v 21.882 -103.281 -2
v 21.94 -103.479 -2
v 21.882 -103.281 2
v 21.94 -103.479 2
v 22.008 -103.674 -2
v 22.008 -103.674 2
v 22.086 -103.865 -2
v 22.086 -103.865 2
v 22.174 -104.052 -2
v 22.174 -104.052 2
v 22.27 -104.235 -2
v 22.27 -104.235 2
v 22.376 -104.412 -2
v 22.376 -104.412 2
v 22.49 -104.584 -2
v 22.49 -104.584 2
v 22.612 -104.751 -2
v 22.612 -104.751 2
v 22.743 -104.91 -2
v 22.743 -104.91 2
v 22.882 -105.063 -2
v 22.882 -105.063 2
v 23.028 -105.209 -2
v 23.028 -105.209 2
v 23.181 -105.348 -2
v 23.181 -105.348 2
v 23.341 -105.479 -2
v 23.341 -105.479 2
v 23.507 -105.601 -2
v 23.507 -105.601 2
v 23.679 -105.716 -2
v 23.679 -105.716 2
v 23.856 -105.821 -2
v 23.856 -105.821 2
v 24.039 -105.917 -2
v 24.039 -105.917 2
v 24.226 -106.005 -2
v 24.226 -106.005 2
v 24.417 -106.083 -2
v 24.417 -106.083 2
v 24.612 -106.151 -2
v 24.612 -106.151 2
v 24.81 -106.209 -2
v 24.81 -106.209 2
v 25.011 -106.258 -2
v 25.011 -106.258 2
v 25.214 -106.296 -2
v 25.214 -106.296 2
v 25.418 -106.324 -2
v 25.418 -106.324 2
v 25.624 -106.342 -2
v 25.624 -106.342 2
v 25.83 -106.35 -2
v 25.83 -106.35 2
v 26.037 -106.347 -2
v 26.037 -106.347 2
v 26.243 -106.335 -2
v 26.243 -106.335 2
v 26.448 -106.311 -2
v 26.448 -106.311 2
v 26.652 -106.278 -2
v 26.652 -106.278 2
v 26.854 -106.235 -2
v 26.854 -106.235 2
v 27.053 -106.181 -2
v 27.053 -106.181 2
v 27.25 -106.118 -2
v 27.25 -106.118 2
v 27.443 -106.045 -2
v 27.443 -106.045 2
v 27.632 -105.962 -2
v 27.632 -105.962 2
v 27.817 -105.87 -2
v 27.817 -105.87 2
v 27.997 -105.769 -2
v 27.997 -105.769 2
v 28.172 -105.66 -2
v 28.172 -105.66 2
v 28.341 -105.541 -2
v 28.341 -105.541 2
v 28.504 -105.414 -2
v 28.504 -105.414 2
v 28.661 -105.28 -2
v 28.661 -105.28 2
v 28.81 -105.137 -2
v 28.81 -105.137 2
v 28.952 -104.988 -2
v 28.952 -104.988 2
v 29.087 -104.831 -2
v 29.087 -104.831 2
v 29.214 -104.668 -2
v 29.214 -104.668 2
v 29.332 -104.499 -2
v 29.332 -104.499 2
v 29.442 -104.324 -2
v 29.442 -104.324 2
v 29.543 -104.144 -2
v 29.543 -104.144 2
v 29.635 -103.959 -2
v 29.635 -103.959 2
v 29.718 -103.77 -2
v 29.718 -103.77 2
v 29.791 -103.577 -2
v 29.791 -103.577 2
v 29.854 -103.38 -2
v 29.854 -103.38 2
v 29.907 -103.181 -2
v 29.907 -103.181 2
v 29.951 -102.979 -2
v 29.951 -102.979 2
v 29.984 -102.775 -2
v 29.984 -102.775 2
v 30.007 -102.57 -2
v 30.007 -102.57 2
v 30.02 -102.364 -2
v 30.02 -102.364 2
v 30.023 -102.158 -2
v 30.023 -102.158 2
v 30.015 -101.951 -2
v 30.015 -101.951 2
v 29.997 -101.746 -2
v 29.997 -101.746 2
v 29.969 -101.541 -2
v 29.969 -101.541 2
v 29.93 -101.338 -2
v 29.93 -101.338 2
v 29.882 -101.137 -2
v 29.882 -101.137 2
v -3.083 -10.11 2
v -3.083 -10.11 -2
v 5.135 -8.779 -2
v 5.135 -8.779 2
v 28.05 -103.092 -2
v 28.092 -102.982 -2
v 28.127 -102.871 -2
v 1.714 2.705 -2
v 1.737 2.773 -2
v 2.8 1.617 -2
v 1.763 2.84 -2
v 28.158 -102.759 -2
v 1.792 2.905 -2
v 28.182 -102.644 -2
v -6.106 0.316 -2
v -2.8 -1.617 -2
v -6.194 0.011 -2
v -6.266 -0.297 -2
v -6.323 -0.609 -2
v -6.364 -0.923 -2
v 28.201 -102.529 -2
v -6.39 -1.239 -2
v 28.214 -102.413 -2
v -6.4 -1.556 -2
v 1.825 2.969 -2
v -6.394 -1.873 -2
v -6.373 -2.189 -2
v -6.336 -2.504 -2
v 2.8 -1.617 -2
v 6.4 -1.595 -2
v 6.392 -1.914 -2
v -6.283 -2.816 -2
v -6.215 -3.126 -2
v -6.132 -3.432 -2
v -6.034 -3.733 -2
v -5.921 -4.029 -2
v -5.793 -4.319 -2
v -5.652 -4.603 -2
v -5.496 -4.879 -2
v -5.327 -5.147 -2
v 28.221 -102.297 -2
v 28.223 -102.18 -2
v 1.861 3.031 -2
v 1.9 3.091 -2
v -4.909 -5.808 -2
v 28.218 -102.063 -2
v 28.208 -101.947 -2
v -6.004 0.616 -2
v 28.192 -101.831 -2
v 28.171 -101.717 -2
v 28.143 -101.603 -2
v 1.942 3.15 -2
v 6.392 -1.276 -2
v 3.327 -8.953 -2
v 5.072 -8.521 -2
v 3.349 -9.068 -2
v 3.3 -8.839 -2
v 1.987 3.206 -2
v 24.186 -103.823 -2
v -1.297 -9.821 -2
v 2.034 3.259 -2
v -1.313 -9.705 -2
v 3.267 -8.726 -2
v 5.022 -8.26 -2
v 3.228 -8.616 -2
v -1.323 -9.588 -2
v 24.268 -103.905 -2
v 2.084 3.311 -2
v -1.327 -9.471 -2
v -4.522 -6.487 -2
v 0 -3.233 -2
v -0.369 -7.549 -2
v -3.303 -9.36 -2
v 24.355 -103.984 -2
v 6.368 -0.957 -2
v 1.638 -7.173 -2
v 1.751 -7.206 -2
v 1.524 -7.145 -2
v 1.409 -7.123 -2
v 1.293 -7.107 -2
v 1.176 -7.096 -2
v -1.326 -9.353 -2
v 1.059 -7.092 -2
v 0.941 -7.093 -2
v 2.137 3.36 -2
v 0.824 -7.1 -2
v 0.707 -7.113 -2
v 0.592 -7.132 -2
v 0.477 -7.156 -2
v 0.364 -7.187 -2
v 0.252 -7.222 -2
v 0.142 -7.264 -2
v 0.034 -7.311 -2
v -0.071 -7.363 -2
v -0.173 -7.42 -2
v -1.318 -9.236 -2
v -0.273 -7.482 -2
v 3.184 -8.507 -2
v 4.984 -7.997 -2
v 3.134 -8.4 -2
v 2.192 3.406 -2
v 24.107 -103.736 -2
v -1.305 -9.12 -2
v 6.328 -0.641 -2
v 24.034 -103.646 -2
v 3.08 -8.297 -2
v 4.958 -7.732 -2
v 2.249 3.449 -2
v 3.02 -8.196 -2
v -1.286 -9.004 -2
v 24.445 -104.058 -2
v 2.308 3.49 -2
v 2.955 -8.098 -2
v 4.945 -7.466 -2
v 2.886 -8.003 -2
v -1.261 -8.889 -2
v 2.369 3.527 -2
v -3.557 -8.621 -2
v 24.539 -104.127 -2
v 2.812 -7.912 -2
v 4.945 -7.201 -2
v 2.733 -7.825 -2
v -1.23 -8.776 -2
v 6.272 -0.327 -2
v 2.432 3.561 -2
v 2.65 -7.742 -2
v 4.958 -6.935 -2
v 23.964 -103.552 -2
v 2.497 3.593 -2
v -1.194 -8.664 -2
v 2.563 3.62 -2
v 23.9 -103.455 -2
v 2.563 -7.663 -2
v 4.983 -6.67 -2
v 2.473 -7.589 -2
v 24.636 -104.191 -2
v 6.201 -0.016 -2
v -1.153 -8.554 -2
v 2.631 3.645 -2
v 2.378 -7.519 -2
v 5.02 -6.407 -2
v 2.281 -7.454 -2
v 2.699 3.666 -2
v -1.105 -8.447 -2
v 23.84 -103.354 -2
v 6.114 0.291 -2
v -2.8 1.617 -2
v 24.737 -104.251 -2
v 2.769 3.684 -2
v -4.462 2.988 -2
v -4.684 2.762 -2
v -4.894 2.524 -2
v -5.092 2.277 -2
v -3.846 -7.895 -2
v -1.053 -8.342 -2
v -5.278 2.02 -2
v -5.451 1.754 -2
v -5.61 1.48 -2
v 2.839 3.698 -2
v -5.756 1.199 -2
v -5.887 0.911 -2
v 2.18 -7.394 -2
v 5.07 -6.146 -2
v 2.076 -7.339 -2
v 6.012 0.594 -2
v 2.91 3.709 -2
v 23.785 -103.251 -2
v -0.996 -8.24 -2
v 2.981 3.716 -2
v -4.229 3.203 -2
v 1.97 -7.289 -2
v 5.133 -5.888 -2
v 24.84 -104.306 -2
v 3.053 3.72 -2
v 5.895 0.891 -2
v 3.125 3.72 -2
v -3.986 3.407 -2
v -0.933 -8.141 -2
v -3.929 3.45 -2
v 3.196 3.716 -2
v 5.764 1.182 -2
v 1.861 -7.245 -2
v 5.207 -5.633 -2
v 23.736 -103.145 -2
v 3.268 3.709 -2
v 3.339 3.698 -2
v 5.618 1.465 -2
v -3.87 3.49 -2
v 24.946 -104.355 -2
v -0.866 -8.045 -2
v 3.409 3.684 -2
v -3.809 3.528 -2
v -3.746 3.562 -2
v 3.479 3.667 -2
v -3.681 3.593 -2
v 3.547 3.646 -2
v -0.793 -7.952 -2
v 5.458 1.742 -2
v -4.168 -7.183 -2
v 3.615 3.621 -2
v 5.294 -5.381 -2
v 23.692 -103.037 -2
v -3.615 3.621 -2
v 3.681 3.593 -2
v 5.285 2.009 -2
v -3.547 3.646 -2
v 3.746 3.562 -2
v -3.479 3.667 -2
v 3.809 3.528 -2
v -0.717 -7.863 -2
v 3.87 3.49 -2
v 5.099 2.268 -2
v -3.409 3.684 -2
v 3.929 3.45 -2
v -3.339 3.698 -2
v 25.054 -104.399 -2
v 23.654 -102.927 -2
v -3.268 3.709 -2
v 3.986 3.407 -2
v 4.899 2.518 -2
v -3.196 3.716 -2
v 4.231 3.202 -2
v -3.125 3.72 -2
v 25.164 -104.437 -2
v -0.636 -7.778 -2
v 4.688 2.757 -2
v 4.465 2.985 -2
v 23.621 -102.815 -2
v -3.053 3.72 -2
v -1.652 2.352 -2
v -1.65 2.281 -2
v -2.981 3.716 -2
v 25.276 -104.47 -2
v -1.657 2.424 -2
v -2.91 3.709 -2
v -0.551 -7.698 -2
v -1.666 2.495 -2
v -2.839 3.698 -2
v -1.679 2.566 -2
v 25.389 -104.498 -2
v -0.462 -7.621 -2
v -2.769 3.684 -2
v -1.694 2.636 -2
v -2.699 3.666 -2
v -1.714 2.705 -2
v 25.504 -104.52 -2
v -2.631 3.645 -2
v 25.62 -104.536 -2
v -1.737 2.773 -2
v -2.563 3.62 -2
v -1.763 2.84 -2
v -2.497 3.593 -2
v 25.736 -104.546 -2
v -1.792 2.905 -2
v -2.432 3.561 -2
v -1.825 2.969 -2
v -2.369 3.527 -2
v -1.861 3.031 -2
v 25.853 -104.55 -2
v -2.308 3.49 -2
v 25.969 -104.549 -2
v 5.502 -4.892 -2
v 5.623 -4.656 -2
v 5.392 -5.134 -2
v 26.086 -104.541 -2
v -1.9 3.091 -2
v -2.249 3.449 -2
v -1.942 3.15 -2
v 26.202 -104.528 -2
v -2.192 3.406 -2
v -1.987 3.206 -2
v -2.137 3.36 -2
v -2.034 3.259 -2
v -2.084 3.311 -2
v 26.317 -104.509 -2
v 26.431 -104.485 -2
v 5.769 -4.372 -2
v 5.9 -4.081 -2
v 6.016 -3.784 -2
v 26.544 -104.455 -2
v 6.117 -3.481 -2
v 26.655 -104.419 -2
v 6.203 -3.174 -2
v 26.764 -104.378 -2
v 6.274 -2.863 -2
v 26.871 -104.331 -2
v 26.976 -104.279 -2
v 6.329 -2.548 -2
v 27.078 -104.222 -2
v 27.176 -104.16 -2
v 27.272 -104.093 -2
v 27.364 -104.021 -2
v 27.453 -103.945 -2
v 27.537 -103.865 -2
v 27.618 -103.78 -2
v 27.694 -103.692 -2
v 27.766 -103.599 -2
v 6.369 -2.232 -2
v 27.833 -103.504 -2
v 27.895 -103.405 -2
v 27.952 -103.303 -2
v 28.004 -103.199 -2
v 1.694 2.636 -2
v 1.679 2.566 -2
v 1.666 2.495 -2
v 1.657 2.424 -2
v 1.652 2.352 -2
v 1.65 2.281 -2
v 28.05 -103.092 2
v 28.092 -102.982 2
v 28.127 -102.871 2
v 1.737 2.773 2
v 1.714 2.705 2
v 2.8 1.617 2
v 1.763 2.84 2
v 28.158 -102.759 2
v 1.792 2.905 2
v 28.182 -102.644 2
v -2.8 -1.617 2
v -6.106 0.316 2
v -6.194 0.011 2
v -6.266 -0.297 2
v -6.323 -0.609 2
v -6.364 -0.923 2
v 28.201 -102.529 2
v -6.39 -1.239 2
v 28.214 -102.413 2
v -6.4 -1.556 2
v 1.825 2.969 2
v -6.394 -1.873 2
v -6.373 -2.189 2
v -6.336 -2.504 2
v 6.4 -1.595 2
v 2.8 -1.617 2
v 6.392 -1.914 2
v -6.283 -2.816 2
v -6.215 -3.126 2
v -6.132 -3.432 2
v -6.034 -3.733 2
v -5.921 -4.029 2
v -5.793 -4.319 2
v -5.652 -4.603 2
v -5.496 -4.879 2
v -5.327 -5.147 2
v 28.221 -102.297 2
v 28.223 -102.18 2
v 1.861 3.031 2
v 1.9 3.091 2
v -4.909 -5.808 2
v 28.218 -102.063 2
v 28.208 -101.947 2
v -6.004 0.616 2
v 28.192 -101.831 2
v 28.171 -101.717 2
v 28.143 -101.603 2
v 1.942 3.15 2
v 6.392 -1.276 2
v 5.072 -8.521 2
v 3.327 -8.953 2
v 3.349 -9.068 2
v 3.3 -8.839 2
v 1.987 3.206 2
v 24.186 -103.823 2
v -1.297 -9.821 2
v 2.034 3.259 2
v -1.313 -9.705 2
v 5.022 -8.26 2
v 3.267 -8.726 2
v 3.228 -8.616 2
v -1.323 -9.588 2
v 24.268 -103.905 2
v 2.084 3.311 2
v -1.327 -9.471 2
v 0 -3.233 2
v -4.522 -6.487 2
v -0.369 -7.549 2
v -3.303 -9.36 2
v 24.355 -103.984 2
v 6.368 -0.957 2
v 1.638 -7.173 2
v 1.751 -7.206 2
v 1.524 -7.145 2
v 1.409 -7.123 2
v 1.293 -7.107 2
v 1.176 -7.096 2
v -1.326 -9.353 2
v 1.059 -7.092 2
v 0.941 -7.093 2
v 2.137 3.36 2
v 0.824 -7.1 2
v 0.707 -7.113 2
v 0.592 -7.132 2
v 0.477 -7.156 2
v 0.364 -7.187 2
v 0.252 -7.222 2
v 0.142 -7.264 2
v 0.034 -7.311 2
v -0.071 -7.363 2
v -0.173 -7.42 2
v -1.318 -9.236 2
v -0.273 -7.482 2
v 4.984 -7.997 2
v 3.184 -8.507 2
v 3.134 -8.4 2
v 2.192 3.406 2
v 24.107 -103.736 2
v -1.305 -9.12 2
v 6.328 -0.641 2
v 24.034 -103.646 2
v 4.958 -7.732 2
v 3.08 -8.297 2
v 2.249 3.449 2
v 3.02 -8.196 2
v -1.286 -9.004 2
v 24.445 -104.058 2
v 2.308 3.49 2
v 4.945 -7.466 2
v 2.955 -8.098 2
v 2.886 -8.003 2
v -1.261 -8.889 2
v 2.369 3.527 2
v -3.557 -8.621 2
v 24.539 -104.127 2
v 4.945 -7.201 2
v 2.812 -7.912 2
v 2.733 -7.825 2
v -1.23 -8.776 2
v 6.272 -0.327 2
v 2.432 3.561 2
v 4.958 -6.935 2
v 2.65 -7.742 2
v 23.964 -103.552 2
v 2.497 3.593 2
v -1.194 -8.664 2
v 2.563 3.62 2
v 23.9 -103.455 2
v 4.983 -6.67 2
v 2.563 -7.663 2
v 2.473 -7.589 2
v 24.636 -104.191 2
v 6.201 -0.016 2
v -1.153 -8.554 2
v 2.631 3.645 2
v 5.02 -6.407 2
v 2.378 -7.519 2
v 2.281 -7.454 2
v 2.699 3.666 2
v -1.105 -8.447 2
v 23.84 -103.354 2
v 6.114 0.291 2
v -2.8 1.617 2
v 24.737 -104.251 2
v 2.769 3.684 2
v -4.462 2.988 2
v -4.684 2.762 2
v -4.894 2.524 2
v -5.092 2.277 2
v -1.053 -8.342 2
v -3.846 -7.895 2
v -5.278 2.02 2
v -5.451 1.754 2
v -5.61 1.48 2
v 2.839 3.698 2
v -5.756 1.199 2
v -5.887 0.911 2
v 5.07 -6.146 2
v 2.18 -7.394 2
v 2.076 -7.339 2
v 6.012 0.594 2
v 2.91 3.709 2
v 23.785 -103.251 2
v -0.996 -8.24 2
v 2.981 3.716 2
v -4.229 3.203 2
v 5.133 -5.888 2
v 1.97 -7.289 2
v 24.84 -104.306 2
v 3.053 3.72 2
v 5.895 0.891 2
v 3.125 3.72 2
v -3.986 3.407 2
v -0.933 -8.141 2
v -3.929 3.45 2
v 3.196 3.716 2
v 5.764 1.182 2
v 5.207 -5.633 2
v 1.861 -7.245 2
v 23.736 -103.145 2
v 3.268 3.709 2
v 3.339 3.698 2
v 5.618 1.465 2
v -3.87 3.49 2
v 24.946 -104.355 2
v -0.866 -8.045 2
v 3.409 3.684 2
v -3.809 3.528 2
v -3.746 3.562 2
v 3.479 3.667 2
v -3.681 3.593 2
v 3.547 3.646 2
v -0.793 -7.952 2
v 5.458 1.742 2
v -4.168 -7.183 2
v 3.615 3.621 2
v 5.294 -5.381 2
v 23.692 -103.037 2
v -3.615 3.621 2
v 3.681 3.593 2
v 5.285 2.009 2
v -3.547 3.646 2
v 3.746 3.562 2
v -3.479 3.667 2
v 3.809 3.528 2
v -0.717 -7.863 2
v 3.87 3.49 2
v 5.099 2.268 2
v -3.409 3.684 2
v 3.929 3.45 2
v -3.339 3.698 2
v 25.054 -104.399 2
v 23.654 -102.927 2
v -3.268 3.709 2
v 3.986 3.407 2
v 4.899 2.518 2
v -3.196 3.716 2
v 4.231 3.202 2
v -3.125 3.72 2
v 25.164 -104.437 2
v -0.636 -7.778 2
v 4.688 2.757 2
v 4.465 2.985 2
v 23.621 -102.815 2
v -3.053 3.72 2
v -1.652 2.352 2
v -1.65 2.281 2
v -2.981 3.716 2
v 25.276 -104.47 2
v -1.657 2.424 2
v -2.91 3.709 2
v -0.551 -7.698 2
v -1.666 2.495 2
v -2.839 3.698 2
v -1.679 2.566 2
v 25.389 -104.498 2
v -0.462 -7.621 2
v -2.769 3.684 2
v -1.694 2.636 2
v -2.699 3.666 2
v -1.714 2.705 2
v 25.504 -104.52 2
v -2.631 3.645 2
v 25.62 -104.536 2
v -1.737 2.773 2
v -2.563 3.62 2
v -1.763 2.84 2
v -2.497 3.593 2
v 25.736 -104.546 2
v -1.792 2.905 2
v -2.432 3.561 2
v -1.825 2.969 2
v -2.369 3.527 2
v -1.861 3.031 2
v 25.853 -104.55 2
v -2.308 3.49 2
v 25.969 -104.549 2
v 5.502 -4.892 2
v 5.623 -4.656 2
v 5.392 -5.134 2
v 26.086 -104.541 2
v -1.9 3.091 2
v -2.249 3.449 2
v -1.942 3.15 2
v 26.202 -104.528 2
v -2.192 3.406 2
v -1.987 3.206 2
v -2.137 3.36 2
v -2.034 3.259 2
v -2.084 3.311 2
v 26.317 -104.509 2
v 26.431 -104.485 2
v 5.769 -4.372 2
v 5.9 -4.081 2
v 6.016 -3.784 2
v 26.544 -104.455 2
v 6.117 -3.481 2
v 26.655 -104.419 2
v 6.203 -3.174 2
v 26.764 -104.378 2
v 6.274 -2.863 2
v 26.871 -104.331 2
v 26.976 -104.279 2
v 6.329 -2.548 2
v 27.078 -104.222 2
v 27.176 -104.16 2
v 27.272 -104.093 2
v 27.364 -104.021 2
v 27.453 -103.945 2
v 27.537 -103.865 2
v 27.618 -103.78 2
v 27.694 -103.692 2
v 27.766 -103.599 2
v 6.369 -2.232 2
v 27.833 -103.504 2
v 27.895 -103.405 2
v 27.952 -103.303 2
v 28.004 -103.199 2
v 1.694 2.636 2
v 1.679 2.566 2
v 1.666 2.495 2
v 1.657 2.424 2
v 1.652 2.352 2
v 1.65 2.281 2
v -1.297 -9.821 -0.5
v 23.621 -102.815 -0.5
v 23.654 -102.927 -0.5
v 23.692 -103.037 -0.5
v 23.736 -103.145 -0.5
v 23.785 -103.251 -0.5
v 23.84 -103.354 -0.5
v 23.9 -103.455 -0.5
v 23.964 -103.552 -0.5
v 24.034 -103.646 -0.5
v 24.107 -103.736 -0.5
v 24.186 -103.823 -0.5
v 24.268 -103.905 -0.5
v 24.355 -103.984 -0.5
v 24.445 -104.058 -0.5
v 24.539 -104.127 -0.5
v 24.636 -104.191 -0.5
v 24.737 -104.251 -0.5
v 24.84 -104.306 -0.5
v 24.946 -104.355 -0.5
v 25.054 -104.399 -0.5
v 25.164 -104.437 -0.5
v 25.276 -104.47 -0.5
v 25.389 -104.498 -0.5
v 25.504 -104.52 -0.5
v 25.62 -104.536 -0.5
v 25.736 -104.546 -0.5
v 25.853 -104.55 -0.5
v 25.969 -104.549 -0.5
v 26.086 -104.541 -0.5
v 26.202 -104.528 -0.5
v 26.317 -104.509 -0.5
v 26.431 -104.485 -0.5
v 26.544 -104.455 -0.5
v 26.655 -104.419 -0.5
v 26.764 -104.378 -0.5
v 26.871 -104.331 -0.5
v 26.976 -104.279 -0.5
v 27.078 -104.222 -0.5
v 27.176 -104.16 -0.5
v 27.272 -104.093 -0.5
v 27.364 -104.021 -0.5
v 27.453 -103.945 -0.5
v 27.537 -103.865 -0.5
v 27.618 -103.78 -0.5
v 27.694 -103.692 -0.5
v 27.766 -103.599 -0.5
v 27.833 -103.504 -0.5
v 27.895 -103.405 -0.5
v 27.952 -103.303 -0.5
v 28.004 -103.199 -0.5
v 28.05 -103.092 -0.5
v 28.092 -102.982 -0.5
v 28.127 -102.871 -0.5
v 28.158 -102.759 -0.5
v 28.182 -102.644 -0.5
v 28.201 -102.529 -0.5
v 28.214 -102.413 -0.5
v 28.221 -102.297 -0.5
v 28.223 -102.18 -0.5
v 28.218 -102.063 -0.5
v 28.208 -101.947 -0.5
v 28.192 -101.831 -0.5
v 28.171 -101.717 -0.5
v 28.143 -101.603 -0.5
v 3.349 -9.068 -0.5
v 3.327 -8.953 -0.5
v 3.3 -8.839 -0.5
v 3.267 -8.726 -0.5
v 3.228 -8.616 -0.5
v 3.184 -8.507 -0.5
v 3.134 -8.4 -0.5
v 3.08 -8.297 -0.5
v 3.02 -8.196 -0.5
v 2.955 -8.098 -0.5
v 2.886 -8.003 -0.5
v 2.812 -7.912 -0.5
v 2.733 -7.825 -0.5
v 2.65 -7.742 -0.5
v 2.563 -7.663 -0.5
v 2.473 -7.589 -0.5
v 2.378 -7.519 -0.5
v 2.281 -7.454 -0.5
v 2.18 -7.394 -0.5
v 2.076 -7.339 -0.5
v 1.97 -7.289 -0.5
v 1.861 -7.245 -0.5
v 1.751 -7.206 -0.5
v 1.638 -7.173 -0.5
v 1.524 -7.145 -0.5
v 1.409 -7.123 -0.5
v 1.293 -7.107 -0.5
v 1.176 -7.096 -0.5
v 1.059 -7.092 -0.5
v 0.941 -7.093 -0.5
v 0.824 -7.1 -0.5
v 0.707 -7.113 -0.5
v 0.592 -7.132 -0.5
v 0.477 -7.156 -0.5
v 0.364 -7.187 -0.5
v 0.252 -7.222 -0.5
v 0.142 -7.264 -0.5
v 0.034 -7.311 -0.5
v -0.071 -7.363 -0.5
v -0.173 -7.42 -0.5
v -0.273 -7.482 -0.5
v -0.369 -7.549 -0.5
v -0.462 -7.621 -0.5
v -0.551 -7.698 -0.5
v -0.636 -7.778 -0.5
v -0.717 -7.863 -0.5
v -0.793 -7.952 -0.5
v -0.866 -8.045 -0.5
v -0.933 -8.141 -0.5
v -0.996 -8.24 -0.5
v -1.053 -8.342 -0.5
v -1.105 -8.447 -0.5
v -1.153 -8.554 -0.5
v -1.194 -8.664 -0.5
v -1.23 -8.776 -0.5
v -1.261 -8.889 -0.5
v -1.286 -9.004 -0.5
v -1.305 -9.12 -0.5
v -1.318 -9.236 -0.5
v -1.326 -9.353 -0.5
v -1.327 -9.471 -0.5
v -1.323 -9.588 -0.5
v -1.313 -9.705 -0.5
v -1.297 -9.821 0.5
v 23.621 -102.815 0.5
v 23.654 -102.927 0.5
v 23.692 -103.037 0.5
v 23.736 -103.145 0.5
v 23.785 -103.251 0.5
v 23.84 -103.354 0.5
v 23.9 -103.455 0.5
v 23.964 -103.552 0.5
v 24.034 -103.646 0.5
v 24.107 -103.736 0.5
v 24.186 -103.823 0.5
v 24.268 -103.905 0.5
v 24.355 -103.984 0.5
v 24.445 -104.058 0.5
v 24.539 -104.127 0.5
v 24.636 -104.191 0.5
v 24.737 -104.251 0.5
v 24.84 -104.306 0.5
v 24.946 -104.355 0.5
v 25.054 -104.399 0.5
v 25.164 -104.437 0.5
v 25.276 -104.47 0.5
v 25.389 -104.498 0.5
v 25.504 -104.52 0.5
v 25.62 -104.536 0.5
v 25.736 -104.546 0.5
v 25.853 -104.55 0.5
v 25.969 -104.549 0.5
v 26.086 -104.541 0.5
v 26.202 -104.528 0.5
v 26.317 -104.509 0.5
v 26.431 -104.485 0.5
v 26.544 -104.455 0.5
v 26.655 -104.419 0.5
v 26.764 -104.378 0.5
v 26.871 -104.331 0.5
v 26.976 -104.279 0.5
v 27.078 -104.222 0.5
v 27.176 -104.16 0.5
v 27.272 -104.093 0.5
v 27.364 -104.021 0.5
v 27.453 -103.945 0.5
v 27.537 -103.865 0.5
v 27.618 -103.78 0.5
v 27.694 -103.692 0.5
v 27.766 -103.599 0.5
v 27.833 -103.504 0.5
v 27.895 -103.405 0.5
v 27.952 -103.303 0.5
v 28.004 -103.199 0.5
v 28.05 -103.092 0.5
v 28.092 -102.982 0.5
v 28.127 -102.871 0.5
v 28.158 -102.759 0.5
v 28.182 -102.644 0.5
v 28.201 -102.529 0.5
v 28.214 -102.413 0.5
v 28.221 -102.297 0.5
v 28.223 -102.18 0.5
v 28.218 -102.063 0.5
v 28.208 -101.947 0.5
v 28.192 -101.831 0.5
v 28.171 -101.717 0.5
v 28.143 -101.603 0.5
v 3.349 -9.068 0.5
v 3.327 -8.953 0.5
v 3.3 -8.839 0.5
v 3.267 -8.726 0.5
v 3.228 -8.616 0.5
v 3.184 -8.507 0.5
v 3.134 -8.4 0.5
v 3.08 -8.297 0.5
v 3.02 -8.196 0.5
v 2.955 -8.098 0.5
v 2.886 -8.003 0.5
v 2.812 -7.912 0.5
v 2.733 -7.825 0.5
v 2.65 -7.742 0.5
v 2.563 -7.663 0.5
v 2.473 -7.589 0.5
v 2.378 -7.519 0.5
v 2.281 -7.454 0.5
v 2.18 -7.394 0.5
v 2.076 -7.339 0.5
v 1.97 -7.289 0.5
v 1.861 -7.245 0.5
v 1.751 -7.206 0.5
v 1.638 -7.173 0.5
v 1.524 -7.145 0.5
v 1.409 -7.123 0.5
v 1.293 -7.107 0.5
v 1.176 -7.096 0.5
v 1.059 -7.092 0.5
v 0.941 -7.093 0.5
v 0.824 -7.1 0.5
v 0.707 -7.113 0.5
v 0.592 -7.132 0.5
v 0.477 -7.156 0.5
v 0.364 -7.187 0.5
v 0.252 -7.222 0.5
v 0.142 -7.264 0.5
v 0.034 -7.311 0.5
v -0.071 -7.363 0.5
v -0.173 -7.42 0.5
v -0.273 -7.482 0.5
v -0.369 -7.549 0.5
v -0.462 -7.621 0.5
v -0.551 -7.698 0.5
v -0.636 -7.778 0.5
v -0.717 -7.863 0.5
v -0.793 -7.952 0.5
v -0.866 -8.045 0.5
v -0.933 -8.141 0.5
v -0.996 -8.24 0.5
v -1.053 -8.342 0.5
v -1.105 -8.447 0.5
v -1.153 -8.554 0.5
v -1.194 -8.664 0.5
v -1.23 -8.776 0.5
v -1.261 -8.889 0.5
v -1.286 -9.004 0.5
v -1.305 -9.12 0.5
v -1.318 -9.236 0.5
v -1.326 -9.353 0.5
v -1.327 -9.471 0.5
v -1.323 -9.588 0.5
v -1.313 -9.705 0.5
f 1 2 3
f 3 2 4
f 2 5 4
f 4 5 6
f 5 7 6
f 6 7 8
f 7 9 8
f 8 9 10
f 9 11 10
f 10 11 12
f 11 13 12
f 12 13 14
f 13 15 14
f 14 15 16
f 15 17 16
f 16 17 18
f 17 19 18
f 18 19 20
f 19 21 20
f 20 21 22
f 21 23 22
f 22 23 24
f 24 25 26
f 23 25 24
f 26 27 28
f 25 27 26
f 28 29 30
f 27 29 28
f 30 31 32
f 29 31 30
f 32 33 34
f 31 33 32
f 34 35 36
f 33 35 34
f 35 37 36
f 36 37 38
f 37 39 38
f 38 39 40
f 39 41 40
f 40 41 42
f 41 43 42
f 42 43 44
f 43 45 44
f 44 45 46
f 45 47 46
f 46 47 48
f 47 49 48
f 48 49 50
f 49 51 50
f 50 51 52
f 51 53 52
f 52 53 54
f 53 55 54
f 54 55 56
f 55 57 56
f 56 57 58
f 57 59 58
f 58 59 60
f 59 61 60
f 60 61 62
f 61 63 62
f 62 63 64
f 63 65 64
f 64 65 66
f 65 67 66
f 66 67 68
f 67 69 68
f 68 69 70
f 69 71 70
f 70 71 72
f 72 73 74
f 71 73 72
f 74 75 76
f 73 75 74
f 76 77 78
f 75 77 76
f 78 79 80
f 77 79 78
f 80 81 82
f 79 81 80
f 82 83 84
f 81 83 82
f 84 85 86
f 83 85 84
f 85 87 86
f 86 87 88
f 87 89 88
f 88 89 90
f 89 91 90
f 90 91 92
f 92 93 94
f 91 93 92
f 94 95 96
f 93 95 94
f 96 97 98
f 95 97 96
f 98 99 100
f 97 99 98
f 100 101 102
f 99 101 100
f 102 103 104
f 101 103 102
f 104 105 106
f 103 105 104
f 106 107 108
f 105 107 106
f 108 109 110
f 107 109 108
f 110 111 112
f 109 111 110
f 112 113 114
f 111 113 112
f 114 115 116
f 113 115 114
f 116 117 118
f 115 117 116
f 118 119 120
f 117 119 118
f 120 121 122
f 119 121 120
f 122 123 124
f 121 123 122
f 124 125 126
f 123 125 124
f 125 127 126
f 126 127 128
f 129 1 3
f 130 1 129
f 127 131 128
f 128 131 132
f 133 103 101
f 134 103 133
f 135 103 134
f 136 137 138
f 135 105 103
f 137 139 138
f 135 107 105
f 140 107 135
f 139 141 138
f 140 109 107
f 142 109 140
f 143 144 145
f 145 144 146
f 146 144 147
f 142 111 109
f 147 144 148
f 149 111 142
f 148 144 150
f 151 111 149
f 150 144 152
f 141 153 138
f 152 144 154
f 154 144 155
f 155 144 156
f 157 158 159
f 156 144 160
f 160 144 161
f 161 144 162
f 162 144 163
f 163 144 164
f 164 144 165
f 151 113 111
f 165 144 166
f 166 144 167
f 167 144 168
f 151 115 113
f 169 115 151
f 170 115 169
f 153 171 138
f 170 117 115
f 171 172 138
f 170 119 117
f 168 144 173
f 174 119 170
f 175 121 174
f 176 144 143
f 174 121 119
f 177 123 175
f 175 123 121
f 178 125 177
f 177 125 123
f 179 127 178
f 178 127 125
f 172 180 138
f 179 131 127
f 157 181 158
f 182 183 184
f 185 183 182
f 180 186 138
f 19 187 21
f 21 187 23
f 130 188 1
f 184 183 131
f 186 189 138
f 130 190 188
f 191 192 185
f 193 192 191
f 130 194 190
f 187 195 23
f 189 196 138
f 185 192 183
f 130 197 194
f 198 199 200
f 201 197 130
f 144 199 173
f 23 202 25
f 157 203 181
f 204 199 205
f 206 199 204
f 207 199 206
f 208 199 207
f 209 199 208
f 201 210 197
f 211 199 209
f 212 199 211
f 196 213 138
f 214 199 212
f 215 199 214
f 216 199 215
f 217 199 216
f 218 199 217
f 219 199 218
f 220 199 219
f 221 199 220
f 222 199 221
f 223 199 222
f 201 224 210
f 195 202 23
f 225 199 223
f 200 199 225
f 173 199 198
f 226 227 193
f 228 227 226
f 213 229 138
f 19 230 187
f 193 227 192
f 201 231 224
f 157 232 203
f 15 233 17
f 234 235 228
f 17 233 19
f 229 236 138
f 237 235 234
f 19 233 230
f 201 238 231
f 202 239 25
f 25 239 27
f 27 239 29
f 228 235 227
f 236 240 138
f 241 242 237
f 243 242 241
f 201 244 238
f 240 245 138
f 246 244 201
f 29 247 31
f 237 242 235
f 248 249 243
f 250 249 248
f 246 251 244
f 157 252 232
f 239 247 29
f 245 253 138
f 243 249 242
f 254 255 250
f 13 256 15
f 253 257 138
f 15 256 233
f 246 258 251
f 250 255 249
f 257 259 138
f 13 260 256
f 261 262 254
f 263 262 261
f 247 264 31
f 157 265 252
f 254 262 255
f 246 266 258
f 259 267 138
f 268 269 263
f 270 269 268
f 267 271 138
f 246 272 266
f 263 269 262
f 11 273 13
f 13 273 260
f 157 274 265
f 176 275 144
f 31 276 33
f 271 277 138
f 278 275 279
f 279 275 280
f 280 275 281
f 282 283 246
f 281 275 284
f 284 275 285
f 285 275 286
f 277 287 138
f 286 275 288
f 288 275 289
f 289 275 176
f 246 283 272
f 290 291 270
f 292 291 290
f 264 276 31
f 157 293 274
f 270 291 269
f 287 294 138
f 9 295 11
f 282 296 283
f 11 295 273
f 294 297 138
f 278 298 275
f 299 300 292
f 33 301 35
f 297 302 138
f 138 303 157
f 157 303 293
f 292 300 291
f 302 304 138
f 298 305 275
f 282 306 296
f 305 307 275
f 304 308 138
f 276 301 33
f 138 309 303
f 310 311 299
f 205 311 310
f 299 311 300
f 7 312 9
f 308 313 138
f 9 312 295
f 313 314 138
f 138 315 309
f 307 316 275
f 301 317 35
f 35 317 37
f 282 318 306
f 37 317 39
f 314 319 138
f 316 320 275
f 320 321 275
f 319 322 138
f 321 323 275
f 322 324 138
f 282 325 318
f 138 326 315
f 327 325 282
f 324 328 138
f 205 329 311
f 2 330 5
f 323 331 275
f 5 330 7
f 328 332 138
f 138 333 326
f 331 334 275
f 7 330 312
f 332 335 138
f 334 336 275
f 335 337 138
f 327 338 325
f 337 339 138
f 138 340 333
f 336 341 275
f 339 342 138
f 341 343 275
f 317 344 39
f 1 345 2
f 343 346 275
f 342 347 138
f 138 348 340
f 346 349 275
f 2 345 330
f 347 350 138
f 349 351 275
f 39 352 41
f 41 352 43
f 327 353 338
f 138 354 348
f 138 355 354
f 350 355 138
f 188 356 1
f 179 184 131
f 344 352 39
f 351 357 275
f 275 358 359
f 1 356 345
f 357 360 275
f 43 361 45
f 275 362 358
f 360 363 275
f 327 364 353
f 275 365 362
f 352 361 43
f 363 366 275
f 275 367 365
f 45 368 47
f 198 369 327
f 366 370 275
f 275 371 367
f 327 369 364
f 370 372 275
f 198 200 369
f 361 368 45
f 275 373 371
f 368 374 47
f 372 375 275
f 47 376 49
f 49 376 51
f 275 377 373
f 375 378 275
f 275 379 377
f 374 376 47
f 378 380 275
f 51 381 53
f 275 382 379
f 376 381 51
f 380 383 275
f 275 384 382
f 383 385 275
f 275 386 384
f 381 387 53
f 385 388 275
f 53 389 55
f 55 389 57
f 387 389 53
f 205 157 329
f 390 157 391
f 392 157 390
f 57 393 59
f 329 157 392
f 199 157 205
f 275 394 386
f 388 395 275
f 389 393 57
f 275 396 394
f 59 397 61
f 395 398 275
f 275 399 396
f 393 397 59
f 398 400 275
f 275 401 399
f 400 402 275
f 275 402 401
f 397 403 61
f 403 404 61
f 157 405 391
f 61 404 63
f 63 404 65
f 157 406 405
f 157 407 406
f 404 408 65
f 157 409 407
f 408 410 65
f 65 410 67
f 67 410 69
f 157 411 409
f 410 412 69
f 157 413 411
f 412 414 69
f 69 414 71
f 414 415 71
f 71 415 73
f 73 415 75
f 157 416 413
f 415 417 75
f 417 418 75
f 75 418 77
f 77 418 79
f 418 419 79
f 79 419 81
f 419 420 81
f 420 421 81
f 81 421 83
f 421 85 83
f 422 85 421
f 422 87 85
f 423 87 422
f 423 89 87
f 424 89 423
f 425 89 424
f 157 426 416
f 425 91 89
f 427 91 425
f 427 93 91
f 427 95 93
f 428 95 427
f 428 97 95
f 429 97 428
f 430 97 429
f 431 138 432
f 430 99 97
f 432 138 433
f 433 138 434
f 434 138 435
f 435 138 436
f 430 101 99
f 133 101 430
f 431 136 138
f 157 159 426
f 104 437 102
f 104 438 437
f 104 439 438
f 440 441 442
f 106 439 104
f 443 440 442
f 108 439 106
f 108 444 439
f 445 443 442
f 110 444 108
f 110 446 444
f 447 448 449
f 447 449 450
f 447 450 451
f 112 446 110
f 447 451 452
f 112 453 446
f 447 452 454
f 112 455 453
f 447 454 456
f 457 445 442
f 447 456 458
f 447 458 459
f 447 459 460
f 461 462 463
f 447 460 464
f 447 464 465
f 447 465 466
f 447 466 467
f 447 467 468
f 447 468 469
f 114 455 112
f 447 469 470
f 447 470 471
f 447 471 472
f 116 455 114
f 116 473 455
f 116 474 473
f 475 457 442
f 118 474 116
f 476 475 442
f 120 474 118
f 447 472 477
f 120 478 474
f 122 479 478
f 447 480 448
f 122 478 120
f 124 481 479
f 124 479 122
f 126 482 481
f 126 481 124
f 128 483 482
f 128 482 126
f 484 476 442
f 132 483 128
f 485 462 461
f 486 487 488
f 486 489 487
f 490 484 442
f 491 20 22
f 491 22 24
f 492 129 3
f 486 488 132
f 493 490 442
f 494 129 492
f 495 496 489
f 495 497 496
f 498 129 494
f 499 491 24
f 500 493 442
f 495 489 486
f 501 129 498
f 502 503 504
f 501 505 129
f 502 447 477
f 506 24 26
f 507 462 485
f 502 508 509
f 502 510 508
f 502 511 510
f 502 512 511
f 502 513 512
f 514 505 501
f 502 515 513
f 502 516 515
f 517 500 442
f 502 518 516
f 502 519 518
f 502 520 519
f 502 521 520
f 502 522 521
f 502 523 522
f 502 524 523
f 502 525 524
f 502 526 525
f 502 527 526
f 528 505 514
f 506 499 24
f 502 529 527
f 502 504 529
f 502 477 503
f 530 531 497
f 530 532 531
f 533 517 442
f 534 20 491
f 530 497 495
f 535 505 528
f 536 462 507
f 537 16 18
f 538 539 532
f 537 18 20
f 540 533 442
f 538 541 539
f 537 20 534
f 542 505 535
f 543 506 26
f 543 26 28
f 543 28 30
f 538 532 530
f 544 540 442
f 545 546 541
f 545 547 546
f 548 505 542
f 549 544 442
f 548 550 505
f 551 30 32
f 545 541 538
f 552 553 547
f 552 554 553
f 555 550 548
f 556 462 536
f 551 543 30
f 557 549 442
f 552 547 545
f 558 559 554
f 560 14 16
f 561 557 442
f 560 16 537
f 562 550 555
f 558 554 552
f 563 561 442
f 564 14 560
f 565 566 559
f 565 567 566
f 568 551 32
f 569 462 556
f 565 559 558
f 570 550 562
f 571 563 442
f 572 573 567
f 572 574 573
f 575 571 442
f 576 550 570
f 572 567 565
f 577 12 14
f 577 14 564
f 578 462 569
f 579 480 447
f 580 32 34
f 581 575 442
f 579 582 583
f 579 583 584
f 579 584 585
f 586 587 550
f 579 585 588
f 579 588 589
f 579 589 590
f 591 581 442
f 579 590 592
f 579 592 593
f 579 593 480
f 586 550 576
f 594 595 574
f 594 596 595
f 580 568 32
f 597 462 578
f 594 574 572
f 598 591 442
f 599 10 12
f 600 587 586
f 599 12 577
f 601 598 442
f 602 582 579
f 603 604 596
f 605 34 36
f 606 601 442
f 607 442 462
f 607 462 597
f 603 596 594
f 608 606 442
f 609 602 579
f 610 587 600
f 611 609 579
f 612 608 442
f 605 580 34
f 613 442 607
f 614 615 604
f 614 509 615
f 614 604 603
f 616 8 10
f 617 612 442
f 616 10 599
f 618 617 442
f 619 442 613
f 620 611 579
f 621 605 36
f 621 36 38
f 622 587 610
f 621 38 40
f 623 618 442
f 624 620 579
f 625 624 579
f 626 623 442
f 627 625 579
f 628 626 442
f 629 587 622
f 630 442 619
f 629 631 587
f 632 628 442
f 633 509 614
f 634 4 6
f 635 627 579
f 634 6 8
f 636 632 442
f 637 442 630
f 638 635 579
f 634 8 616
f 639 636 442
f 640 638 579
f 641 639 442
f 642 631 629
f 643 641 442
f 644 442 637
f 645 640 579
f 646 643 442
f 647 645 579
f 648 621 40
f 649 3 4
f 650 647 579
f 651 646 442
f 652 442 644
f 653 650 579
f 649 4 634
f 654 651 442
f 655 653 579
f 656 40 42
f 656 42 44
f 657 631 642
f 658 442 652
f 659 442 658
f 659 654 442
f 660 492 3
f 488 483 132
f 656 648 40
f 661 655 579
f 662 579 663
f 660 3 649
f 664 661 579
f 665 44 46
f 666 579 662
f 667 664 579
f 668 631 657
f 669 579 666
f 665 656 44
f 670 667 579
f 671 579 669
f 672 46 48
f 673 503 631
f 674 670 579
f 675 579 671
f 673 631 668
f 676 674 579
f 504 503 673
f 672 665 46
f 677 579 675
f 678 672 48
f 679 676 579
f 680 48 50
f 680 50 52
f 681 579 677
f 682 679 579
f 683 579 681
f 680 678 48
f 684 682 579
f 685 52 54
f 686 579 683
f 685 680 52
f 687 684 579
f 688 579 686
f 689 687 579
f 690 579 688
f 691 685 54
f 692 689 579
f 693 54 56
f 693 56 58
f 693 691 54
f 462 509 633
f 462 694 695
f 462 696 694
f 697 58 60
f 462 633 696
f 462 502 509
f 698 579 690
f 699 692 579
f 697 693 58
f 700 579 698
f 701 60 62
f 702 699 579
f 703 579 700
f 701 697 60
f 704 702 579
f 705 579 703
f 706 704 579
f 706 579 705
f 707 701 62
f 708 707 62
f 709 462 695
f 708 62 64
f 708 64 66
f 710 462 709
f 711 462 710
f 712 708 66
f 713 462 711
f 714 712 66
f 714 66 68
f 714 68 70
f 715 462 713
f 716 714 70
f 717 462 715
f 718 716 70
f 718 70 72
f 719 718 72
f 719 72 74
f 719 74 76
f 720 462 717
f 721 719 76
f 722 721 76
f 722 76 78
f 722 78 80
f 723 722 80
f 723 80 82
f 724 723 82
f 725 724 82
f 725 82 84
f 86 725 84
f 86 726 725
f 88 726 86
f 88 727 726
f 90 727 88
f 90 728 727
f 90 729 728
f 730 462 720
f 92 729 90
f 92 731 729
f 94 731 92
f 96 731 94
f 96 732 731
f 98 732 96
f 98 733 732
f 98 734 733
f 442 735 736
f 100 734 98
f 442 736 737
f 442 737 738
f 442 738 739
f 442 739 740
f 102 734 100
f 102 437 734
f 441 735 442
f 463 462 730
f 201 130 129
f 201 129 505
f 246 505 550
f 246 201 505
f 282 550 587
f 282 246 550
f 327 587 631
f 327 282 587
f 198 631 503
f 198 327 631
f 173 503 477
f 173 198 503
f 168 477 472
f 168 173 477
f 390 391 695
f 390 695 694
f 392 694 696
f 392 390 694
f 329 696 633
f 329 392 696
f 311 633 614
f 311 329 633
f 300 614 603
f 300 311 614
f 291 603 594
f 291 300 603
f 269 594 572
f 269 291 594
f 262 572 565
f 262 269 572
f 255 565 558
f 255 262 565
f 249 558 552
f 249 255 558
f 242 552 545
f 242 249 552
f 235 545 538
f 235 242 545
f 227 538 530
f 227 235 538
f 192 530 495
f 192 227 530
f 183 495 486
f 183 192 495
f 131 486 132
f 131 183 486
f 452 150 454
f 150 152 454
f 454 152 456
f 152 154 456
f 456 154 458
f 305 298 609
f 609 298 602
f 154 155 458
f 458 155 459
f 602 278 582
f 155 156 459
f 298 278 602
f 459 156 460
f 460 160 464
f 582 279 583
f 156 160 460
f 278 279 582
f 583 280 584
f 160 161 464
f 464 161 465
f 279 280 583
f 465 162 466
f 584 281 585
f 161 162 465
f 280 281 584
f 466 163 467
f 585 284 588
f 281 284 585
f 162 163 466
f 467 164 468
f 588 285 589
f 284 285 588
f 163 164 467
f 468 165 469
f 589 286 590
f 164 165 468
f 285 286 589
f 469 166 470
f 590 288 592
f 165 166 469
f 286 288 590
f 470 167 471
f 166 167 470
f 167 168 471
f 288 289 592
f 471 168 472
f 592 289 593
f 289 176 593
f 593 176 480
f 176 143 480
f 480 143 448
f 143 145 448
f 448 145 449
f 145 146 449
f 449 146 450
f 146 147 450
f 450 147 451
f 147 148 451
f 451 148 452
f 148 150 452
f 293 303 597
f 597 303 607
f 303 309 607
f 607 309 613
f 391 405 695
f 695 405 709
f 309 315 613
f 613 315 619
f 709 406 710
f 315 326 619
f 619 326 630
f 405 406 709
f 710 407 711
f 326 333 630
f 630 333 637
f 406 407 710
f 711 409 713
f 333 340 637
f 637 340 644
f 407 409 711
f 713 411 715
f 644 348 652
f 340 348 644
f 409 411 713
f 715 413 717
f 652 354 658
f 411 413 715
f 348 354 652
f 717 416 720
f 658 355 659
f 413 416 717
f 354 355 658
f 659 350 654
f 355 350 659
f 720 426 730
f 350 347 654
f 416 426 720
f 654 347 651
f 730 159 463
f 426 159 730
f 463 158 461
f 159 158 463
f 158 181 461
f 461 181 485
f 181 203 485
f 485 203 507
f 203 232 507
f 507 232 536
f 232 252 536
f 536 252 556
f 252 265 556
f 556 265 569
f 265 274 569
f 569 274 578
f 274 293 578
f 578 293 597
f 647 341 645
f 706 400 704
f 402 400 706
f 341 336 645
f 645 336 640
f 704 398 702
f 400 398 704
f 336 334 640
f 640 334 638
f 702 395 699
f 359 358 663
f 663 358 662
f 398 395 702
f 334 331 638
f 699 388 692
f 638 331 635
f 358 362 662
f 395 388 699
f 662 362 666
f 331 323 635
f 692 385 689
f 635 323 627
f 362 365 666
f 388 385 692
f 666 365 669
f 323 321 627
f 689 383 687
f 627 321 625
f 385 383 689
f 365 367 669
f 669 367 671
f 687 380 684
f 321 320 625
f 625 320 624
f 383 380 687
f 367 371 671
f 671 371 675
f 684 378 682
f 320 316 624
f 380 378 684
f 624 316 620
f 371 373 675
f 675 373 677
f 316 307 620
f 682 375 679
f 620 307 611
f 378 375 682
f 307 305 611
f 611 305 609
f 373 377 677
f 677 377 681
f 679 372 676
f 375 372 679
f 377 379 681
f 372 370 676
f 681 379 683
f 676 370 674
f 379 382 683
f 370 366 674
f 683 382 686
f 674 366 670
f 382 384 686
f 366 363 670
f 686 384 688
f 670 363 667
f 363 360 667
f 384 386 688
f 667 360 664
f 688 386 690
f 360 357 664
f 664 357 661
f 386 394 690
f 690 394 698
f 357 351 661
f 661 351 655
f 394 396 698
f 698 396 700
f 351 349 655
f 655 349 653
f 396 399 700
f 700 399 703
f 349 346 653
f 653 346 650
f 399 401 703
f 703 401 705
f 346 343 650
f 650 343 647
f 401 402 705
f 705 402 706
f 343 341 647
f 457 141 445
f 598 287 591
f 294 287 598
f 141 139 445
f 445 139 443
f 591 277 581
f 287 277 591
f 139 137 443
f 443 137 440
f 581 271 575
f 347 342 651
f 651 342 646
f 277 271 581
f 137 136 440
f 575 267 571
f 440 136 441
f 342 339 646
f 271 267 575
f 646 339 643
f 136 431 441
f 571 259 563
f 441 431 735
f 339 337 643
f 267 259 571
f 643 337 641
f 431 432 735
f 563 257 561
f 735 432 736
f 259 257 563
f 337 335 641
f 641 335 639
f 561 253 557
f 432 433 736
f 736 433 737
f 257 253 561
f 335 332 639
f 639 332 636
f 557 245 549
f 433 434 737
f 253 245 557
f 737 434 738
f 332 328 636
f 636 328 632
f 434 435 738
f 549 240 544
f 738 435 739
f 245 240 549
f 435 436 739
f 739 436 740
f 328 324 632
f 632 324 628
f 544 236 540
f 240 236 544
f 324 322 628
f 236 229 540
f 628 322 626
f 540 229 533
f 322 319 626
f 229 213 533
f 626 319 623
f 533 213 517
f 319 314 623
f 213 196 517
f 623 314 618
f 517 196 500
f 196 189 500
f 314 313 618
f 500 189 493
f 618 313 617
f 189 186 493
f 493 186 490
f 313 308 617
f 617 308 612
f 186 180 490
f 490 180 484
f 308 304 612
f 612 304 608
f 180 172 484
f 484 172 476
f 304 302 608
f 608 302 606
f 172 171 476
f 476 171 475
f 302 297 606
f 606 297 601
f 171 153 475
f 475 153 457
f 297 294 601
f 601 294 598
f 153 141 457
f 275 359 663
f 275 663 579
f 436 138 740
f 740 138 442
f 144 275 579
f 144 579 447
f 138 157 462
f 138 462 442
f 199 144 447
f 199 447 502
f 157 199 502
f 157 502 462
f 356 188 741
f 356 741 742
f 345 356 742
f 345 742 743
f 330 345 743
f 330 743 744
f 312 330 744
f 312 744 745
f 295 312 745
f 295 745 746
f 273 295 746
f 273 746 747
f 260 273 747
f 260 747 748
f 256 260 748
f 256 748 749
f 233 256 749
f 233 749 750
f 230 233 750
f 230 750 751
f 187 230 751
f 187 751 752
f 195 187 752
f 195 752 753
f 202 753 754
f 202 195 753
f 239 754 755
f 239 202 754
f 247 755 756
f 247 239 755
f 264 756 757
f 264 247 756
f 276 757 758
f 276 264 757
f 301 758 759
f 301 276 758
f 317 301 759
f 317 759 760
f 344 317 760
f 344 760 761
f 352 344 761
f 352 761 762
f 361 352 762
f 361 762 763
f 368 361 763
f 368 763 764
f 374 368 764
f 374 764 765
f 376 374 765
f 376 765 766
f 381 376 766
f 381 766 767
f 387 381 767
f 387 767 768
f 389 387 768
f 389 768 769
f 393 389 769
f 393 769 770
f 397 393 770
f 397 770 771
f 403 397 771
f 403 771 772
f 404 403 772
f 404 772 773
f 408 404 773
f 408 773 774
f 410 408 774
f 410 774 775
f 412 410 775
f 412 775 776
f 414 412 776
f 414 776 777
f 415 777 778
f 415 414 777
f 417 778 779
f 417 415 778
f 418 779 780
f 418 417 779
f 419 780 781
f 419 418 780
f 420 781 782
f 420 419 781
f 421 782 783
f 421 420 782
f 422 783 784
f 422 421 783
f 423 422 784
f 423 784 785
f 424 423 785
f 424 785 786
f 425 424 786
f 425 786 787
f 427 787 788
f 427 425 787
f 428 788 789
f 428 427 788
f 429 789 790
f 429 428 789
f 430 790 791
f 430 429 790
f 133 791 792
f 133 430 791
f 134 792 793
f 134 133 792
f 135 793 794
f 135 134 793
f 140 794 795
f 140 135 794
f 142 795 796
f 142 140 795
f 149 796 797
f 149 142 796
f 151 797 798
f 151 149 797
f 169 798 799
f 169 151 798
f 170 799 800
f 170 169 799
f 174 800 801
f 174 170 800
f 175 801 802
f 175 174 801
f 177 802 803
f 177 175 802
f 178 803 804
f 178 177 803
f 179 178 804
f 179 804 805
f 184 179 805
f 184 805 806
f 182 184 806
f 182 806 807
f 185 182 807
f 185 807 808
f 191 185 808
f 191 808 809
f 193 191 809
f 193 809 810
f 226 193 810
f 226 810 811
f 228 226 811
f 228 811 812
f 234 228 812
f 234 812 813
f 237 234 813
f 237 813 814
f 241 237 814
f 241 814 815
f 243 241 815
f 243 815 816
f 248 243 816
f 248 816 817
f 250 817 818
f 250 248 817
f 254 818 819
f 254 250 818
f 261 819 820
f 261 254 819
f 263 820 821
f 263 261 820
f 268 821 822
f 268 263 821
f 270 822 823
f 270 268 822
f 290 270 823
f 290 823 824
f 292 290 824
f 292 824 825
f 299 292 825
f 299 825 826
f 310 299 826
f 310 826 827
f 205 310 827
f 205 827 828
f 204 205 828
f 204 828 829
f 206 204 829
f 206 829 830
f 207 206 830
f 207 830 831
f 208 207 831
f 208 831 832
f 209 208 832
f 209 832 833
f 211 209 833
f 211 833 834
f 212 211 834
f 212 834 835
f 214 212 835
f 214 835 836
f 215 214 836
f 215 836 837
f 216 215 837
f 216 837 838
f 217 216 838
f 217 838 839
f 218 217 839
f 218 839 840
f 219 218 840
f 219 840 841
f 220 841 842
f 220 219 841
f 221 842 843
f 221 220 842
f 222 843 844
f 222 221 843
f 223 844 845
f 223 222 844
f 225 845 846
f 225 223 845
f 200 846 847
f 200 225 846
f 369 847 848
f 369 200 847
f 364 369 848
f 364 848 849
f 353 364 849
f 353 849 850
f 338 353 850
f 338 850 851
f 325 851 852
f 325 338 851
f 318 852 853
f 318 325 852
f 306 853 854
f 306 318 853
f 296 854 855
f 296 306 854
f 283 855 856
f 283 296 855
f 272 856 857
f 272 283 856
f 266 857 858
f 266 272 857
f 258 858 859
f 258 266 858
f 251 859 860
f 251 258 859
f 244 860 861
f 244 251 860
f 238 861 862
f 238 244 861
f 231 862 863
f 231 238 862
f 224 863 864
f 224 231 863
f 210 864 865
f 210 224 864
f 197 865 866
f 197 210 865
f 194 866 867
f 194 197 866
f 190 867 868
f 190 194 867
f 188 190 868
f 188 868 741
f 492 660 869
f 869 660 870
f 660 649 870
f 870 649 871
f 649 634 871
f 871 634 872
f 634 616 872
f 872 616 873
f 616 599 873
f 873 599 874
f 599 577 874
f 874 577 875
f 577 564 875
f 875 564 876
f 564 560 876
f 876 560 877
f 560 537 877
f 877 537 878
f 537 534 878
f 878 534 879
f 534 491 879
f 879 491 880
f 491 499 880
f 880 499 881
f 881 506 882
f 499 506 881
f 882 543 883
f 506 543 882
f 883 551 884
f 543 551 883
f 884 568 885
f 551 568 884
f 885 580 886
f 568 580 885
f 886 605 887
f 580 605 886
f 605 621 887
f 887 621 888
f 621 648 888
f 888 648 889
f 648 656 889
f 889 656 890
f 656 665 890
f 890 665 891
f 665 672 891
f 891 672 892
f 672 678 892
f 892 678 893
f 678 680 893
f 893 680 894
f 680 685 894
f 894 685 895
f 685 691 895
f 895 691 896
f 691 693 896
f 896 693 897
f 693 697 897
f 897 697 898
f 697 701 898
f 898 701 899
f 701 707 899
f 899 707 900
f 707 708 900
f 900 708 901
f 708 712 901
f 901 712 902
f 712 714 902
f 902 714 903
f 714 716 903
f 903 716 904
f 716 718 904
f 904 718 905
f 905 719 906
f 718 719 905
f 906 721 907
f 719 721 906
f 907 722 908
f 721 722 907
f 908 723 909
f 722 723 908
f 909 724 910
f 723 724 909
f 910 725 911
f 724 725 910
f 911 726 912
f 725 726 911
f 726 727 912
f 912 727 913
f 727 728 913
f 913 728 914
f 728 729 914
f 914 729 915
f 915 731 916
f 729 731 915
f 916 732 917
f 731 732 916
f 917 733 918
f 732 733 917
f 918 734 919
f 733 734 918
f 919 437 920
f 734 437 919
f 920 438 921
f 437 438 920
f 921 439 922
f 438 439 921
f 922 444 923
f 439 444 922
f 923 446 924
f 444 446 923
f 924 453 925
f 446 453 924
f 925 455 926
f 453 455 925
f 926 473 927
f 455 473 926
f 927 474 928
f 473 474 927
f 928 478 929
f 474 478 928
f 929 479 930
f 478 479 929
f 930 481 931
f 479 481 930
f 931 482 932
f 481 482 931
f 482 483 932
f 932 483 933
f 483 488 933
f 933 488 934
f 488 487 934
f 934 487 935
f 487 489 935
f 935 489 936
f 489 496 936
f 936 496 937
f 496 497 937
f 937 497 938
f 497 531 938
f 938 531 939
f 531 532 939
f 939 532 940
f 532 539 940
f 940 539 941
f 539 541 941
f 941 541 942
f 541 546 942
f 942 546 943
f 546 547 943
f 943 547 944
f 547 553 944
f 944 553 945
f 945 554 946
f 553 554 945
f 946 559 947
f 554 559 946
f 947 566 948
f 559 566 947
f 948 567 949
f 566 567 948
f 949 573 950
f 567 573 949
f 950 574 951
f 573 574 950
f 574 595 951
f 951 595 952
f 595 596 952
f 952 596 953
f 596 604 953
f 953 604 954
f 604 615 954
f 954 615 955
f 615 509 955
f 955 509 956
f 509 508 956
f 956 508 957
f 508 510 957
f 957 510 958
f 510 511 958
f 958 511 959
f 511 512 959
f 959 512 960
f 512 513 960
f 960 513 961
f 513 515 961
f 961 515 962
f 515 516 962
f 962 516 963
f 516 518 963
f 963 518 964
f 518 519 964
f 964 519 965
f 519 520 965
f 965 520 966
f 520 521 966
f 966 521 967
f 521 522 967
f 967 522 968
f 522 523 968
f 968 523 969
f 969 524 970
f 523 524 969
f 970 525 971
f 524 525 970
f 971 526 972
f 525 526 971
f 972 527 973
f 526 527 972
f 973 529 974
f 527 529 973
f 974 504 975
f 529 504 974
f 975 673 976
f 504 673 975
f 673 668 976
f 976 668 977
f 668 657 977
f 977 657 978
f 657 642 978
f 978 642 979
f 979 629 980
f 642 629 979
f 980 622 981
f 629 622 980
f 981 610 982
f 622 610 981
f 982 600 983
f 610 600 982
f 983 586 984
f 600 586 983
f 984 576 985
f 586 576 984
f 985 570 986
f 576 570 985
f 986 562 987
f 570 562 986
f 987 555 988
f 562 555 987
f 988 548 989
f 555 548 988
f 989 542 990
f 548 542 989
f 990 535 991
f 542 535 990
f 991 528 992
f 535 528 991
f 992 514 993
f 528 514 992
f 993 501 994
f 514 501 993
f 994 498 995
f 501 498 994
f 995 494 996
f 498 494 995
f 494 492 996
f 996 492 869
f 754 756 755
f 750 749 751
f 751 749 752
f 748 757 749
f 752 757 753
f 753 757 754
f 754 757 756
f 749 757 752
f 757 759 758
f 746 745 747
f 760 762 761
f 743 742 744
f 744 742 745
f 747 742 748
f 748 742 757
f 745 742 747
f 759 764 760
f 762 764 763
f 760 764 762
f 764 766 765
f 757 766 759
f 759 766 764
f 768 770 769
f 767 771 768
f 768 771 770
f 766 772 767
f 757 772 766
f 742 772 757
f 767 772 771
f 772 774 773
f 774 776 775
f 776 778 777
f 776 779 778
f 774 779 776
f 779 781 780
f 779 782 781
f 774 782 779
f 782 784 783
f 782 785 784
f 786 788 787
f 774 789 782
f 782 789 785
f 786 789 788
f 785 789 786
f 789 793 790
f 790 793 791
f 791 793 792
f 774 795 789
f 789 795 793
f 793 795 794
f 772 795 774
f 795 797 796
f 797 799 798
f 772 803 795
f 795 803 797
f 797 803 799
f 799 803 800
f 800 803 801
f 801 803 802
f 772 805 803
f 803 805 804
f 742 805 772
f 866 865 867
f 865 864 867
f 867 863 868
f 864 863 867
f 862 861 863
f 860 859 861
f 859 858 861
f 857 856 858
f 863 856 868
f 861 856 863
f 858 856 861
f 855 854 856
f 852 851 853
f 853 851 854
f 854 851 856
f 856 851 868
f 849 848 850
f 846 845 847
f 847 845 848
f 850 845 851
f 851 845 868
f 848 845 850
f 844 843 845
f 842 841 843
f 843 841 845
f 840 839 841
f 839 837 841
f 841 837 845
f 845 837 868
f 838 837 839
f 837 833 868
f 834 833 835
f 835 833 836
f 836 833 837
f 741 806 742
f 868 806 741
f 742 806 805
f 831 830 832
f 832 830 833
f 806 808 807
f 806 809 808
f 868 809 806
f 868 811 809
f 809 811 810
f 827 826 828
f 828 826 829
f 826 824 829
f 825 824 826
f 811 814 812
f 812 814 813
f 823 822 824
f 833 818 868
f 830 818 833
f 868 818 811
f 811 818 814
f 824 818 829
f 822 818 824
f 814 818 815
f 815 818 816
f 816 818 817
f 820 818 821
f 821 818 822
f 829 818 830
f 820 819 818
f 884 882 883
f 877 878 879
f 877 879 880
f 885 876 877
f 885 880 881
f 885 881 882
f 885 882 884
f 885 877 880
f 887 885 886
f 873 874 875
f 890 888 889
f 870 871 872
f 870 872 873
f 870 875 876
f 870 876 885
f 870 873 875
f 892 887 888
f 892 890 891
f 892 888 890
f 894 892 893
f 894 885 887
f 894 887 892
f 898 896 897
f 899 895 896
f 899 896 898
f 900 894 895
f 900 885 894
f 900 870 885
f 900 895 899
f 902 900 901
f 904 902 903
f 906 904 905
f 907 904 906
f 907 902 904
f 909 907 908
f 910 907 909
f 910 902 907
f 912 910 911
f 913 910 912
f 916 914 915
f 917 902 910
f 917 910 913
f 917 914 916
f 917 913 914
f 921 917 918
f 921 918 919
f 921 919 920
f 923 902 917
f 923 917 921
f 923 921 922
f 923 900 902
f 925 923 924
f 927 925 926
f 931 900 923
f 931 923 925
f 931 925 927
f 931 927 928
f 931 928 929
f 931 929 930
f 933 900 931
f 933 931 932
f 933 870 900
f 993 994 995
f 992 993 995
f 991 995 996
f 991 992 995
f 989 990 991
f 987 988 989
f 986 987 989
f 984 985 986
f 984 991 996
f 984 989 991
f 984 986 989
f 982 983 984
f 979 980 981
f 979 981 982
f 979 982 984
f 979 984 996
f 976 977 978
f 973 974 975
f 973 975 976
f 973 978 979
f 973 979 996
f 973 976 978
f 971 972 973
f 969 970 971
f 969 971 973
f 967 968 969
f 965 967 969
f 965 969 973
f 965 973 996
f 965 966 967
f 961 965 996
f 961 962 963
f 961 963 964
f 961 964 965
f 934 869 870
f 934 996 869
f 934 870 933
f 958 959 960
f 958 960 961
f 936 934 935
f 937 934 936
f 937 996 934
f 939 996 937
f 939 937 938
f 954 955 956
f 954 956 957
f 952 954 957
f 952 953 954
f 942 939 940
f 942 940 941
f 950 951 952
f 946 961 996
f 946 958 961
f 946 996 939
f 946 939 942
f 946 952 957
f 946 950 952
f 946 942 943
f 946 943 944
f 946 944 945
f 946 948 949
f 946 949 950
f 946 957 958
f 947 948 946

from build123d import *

# Parameters (mm, degrees)
PAD_DEPTH    = 2
POCKET_DEPTH = 1.5


with BuildPart() as part:
    # Sketch → Pad (new body, symmetric)
    with BuildSketch(Plane.XY):
        with BuildLine():
            ThreePointArc((21.881905, -103.28096), (26.953701, -106.209163), (29.881905, -101.137367))
            Line((29.881905, -101.137367), (5.134572, -8.779064))
            ThreePointArc((5.623337, -4.655828), (4.982691, -6.670473), (5.134572, -8.779064))
            ThreePointArc((5.623337, -4.655828), (6.272045, -0.326637), (3.986441, 3.406824))
            ThreePointArc((3.986441, 3.406824), (2.464526, 3.577404), (1.65, 2.280534))
            Line((1.65, 2.280534), (2.8, 1.616581))
            Line((2.8, -1.616581), (2.8, 1.616581))
            Line((0, -3.233162), (2.8, -1.616581))
            Line((-2.8, -1.616581), (0, -3.233162))
            Line((-2.8, 1.616581), (-2.8, -1.616581))
            Line((-1.65, 2.280534), (-2.8, 1.616581))
            ThreePointArc((-1.65, 2.280534), (-2.464526, 3.577404), (-3.986441, 3.406824))
            ThreePointArc((-3.986441, 3.406824), (-6.322816, -0.609041), (-5.327083, -5.147138))
            ThreePointArc((-3.083121, -10.110216), (-4.002626, -7.537131), (-5.327083, -5.147138))
            Line((21.881905, -103.28096), (-3.083121, -10.110216))
        make_face()
    extrude(amount=PAD_DEPTH, both=True)

    # Sketch001 → Pocket (cut)
    with BuildSketch(Plane.XY.offset(2)):
        with BuildLine():
            Line((-1.297143, -9.820912), (23.620571, -102.815086))
            ThreePointArc((23.620571, -102.815086), (26.487827, -104.470497), (28.143238, -101.603241))
            Line((28.143238, -101.603241), (3.348593, -9.068367))
            ThreePointArc((3.348593, -9.068367), (0.649453, -7.121772), (-1.297143, -9.820912))
        make_face()
    pocket = extrude(amount=-POCKET_DEPTH, mode=Mode.SUBTRACT)

    # Mirrored: Pocket across XY
    add(pocket.mirror(Plane.XY), mode=Mode.SUBTRACT)


solid = part.part
